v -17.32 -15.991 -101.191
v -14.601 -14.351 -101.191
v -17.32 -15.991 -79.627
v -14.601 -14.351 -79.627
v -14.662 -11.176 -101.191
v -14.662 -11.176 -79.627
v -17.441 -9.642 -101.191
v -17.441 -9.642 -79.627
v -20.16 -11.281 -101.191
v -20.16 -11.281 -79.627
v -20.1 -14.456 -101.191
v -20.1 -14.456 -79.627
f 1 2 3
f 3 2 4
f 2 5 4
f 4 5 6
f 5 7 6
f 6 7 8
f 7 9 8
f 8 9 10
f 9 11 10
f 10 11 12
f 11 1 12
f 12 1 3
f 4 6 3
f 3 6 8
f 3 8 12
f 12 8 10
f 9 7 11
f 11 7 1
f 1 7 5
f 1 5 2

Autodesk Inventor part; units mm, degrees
ref_plane "YZ Plane" through (0, 0, 0) normal (1, 0, 0) x (0, 1, 0)
ref_plane "XZ Plane" through (0, 0, 0) normal (0, 1, 0) x (-1, 0, 0)
ref_plane "Work Plane1" through (-17.3808, -12.8161, -79.6267) normal (0, 0, 1) x (1, 0, 0)
sketch "Sketch2" plane through (-17.3808, -12.8161, -79.6267) normal (0, 0, 1) x (1, 0, 0)
  circle A0 centre (0, 0) radius 3.175 projected
  line L0 (2.7795, -1.5347) -> (0.0606, -3.1744)
  line L1 (0.0606, -3.1744) -> (-2.7188, -1.6397)
  line L2 (-2.7188, -1.6397) -> (-2.7795, 1.5347)
  line L3 (-2.7795, 1.5347) -> (-0.0606, 3.1744)
  line L4 (-0.0606, 3.1744) -> (2.7188, 1.6397)
  line L5 (2.7188, 1.6397) -> (2.7795, -1.5347)
  point P0 (17.3808, 12.8161)
ref_plane "Work Plane2" through (-16.1743, -15.6151, -101.1913) normal (0, 0, -1) x (0, 1, 0)
extrude "Extrusion1" add sketch "Sketch2" against normal up to surface (21.5646 mm away) contours L5 L0 L1 L2 L3 L4
properties part number "ArmSolenoidShaftBoundingBox"
